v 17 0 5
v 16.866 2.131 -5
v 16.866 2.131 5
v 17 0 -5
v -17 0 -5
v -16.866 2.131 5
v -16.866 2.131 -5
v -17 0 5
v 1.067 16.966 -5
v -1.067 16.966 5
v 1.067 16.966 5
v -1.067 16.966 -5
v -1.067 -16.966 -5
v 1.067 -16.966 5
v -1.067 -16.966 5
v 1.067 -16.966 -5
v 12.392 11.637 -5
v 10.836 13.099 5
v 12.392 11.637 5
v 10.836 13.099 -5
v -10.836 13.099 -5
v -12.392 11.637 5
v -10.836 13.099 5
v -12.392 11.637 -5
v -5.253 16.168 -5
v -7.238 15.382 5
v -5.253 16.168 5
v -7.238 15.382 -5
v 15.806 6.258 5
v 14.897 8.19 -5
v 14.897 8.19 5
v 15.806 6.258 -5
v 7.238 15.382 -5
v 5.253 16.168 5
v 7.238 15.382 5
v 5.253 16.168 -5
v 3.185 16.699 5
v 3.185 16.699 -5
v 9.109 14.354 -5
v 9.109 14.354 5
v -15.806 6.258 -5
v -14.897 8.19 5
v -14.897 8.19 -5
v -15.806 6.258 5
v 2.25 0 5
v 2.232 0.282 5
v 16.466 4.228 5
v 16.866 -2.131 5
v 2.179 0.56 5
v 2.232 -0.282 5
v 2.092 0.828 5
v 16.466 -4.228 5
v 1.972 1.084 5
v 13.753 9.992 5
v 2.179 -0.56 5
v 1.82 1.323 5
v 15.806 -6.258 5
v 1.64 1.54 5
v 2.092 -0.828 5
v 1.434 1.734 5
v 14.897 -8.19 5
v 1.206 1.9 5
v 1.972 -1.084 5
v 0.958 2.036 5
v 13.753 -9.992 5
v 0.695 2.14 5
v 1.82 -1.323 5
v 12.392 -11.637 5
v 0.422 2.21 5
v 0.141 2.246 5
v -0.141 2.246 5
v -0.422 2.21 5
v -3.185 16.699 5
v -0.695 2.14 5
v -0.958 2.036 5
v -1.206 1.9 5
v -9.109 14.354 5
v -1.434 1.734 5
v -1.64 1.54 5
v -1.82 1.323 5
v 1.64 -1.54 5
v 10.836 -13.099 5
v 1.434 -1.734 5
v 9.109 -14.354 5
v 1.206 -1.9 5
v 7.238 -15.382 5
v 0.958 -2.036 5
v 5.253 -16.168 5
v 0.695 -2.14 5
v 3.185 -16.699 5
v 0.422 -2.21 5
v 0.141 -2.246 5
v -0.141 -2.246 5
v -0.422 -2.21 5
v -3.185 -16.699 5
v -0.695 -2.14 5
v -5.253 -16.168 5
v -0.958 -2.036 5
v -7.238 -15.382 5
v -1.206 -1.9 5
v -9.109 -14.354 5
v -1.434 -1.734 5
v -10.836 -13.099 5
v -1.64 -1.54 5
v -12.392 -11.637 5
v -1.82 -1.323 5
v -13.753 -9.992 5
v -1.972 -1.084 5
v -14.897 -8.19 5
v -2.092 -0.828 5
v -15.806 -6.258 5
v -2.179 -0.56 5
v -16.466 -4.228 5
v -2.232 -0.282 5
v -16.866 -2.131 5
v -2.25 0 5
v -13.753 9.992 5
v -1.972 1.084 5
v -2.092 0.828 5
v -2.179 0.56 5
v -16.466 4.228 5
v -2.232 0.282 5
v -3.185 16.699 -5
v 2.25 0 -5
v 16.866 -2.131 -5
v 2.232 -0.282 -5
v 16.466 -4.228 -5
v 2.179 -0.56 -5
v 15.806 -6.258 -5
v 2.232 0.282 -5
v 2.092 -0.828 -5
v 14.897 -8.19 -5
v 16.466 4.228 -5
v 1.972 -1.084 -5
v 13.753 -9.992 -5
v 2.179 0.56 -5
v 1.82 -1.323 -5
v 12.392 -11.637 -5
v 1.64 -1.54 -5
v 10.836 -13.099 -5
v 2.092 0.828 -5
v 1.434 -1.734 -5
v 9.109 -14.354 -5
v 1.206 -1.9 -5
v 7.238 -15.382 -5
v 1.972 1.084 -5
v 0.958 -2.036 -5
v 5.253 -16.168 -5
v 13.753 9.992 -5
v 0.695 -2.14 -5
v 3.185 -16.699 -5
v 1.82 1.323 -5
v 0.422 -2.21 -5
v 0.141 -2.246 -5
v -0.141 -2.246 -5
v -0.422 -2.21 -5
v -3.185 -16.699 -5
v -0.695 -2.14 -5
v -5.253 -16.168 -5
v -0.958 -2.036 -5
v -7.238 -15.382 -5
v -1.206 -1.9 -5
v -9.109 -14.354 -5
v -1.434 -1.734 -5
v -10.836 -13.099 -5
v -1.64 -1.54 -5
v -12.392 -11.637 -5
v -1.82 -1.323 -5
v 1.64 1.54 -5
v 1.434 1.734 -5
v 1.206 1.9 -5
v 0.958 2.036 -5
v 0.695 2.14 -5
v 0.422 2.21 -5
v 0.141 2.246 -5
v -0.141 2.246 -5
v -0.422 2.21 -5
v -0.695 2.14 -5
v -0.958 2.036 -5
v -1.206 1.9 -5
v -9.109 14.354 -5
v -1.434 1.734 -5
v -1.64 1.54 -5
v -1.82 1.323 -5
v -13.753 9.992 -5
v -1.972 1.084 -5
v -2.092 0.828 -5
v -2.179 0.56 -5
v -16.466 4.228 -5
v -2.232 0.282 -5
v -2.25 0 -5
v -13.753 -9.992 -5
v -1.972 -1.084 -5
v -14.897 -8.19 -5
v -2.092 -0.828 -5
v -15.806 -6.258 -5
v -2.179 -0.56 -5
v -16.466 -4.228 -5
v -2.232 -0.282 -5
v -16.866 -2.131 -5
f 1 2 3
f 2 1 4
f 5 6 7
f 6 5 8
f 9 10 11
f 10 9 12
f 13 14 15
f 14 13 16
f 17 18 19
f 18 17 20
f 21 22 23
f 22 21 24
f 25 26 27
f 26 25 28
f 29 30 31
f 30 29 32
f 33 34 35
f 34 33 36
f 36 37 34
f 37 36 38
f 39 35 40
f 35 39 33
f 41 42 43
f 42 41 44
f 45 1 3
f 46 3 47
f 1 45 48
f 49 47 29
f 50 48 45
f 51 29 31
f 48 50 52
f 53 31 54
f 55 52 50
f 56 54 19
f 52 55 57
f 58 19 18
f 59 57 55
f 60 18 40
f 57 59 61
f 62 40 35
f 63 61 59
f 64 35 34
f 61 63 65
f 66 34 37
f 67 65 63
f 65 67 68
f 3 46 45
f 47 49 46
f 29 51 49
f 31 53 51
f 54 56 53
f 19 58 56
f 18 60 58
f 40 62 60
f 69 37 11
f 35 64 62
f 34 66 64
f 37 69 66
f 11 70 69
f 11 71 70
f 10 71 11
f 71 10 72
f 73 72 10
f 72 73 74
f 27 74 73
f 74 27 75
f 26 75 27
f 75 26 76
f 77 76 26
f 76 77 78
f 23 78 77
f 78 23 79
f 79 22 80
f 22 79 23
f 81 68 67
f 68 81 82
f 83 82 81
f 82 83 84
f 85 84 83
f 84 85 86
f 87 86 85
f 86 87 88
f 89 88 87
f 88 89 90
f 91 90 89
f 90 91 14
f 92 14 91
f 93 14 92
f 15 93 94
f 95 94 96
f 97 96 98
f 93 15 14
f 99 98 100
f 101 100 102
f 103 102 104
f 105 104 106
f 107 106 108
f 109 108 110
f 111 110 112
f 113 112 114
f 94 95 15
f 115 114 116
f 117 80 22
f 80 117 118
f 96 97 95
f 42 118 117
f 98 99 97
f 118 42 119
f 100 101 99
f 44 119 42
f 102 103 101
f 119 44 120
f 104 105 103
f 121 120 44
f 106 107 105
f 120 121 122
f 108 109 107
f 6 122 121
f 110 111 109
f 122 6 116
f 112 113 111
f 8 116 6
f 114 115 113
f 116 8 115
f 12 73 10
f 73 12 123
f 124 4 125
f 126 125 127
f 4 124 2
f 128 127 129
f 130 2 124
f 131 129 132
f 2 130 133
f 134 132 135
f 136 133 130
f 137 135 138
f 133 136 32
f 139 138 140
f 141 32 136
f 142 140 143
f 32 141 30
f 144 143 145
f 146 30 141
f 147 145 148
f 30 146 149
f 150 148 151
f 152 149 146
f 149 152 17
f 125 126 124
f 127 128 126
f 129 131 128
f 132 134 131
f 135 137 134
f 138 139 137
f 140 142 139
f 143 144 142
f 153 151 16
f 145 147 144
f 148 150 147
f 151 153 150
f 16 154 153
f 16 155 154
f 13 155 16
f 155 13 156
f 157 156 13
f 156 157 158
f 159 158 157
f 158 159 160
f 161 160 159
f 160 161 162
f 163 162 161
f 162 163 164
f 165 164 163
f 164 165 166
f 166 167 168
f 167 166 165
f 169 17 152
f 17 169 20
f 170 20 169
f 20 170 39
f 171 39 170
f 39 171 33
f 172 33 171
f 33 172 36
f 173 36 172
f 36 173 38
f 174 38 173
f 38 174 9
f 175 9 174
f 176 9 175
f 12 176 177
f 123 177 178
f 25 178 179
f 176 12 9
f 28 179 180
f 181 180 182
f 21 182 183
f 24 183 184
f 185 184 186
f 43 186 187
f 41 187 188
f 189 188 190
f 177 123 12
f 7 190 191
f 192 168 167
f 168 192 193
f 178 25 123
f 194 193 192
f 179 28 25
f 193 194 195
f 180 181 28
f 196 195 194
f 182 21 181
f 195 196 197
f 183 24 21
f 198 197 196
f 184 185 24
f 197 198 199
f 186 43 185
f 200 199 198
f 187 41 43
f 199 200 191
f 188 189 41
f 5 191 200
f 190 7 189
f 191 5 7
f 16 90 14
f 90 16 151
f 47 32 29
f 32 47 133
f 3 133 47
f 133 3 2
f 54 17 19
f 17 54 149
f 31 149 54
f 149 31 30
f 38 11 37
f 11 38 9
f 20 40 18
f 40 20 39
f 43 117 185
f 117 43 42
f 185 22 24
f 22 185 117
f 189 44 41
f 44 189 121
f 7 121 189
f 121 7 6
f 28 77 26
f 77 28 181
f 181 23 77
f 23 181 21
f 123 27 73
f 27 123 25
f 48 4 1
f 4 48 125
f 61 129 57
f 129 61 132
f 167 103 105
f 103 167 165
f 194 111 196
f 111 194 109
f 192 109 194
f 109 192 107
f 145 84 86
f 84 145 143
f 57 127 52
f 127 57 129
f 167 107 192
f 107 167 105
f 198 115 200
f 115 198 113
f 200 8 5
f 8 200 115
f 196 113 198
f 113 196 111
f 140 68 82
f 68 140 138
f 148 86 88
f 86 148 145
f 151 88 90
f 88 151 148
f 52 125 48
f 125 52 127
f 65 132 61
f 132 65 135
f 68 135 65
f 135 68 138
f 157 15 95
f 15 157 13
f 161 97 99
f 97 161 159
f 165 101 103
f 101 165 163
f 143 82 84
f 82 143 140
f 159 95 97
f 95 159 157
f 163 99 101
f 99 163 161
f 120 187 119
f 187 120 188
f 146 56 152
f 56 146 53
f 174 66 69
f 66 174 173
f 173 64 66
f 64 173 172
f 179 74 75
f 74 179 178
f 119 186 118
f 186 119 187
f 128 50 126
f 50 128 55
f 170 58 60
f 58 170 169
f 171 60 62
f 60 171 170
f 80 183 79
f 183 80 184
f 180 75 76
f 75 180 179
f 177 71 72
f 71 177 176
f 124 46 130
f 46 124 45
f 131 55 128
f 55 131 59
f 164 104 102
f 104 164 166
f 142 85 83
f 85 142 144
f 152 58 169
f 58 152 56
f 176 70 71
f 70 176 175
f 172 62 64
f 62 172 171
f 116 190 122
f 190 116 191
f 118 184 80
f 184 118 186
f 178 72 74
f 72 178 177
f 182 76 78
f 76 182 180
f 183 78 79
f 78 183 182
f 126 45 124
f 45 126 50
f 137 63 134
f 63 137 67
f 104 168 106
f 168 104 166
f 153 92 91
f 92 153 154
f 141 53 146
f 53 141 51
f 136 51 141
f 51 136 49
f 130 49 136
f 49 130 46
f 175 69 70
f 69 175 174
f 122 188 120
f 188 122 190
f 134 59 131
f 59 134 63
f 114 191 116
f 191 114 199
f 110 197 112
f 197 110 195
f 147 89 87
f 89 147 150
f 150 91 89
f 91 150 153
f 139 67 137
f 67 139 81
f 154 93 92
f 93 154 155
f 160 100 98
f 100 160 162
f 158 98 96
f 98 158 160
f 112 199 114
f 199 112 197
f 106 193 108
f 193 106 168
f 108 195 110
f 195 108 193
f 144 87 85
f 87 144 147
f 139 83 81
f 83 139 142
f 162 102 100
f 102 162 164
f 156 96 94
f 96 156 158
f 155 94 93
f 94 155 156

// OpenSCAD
$fn = 50;


difference() {
	union() {
		translate(v = [0, 0, -5.0000000000]) {
			cylinder(h = 10, r = 17.0000000000);
		}
	}
	union() {
		translate(v = [0, 0, -100.0000000000]) {
			cylinder(h = 200, r = 2.2500000000);
		}
	}
}
